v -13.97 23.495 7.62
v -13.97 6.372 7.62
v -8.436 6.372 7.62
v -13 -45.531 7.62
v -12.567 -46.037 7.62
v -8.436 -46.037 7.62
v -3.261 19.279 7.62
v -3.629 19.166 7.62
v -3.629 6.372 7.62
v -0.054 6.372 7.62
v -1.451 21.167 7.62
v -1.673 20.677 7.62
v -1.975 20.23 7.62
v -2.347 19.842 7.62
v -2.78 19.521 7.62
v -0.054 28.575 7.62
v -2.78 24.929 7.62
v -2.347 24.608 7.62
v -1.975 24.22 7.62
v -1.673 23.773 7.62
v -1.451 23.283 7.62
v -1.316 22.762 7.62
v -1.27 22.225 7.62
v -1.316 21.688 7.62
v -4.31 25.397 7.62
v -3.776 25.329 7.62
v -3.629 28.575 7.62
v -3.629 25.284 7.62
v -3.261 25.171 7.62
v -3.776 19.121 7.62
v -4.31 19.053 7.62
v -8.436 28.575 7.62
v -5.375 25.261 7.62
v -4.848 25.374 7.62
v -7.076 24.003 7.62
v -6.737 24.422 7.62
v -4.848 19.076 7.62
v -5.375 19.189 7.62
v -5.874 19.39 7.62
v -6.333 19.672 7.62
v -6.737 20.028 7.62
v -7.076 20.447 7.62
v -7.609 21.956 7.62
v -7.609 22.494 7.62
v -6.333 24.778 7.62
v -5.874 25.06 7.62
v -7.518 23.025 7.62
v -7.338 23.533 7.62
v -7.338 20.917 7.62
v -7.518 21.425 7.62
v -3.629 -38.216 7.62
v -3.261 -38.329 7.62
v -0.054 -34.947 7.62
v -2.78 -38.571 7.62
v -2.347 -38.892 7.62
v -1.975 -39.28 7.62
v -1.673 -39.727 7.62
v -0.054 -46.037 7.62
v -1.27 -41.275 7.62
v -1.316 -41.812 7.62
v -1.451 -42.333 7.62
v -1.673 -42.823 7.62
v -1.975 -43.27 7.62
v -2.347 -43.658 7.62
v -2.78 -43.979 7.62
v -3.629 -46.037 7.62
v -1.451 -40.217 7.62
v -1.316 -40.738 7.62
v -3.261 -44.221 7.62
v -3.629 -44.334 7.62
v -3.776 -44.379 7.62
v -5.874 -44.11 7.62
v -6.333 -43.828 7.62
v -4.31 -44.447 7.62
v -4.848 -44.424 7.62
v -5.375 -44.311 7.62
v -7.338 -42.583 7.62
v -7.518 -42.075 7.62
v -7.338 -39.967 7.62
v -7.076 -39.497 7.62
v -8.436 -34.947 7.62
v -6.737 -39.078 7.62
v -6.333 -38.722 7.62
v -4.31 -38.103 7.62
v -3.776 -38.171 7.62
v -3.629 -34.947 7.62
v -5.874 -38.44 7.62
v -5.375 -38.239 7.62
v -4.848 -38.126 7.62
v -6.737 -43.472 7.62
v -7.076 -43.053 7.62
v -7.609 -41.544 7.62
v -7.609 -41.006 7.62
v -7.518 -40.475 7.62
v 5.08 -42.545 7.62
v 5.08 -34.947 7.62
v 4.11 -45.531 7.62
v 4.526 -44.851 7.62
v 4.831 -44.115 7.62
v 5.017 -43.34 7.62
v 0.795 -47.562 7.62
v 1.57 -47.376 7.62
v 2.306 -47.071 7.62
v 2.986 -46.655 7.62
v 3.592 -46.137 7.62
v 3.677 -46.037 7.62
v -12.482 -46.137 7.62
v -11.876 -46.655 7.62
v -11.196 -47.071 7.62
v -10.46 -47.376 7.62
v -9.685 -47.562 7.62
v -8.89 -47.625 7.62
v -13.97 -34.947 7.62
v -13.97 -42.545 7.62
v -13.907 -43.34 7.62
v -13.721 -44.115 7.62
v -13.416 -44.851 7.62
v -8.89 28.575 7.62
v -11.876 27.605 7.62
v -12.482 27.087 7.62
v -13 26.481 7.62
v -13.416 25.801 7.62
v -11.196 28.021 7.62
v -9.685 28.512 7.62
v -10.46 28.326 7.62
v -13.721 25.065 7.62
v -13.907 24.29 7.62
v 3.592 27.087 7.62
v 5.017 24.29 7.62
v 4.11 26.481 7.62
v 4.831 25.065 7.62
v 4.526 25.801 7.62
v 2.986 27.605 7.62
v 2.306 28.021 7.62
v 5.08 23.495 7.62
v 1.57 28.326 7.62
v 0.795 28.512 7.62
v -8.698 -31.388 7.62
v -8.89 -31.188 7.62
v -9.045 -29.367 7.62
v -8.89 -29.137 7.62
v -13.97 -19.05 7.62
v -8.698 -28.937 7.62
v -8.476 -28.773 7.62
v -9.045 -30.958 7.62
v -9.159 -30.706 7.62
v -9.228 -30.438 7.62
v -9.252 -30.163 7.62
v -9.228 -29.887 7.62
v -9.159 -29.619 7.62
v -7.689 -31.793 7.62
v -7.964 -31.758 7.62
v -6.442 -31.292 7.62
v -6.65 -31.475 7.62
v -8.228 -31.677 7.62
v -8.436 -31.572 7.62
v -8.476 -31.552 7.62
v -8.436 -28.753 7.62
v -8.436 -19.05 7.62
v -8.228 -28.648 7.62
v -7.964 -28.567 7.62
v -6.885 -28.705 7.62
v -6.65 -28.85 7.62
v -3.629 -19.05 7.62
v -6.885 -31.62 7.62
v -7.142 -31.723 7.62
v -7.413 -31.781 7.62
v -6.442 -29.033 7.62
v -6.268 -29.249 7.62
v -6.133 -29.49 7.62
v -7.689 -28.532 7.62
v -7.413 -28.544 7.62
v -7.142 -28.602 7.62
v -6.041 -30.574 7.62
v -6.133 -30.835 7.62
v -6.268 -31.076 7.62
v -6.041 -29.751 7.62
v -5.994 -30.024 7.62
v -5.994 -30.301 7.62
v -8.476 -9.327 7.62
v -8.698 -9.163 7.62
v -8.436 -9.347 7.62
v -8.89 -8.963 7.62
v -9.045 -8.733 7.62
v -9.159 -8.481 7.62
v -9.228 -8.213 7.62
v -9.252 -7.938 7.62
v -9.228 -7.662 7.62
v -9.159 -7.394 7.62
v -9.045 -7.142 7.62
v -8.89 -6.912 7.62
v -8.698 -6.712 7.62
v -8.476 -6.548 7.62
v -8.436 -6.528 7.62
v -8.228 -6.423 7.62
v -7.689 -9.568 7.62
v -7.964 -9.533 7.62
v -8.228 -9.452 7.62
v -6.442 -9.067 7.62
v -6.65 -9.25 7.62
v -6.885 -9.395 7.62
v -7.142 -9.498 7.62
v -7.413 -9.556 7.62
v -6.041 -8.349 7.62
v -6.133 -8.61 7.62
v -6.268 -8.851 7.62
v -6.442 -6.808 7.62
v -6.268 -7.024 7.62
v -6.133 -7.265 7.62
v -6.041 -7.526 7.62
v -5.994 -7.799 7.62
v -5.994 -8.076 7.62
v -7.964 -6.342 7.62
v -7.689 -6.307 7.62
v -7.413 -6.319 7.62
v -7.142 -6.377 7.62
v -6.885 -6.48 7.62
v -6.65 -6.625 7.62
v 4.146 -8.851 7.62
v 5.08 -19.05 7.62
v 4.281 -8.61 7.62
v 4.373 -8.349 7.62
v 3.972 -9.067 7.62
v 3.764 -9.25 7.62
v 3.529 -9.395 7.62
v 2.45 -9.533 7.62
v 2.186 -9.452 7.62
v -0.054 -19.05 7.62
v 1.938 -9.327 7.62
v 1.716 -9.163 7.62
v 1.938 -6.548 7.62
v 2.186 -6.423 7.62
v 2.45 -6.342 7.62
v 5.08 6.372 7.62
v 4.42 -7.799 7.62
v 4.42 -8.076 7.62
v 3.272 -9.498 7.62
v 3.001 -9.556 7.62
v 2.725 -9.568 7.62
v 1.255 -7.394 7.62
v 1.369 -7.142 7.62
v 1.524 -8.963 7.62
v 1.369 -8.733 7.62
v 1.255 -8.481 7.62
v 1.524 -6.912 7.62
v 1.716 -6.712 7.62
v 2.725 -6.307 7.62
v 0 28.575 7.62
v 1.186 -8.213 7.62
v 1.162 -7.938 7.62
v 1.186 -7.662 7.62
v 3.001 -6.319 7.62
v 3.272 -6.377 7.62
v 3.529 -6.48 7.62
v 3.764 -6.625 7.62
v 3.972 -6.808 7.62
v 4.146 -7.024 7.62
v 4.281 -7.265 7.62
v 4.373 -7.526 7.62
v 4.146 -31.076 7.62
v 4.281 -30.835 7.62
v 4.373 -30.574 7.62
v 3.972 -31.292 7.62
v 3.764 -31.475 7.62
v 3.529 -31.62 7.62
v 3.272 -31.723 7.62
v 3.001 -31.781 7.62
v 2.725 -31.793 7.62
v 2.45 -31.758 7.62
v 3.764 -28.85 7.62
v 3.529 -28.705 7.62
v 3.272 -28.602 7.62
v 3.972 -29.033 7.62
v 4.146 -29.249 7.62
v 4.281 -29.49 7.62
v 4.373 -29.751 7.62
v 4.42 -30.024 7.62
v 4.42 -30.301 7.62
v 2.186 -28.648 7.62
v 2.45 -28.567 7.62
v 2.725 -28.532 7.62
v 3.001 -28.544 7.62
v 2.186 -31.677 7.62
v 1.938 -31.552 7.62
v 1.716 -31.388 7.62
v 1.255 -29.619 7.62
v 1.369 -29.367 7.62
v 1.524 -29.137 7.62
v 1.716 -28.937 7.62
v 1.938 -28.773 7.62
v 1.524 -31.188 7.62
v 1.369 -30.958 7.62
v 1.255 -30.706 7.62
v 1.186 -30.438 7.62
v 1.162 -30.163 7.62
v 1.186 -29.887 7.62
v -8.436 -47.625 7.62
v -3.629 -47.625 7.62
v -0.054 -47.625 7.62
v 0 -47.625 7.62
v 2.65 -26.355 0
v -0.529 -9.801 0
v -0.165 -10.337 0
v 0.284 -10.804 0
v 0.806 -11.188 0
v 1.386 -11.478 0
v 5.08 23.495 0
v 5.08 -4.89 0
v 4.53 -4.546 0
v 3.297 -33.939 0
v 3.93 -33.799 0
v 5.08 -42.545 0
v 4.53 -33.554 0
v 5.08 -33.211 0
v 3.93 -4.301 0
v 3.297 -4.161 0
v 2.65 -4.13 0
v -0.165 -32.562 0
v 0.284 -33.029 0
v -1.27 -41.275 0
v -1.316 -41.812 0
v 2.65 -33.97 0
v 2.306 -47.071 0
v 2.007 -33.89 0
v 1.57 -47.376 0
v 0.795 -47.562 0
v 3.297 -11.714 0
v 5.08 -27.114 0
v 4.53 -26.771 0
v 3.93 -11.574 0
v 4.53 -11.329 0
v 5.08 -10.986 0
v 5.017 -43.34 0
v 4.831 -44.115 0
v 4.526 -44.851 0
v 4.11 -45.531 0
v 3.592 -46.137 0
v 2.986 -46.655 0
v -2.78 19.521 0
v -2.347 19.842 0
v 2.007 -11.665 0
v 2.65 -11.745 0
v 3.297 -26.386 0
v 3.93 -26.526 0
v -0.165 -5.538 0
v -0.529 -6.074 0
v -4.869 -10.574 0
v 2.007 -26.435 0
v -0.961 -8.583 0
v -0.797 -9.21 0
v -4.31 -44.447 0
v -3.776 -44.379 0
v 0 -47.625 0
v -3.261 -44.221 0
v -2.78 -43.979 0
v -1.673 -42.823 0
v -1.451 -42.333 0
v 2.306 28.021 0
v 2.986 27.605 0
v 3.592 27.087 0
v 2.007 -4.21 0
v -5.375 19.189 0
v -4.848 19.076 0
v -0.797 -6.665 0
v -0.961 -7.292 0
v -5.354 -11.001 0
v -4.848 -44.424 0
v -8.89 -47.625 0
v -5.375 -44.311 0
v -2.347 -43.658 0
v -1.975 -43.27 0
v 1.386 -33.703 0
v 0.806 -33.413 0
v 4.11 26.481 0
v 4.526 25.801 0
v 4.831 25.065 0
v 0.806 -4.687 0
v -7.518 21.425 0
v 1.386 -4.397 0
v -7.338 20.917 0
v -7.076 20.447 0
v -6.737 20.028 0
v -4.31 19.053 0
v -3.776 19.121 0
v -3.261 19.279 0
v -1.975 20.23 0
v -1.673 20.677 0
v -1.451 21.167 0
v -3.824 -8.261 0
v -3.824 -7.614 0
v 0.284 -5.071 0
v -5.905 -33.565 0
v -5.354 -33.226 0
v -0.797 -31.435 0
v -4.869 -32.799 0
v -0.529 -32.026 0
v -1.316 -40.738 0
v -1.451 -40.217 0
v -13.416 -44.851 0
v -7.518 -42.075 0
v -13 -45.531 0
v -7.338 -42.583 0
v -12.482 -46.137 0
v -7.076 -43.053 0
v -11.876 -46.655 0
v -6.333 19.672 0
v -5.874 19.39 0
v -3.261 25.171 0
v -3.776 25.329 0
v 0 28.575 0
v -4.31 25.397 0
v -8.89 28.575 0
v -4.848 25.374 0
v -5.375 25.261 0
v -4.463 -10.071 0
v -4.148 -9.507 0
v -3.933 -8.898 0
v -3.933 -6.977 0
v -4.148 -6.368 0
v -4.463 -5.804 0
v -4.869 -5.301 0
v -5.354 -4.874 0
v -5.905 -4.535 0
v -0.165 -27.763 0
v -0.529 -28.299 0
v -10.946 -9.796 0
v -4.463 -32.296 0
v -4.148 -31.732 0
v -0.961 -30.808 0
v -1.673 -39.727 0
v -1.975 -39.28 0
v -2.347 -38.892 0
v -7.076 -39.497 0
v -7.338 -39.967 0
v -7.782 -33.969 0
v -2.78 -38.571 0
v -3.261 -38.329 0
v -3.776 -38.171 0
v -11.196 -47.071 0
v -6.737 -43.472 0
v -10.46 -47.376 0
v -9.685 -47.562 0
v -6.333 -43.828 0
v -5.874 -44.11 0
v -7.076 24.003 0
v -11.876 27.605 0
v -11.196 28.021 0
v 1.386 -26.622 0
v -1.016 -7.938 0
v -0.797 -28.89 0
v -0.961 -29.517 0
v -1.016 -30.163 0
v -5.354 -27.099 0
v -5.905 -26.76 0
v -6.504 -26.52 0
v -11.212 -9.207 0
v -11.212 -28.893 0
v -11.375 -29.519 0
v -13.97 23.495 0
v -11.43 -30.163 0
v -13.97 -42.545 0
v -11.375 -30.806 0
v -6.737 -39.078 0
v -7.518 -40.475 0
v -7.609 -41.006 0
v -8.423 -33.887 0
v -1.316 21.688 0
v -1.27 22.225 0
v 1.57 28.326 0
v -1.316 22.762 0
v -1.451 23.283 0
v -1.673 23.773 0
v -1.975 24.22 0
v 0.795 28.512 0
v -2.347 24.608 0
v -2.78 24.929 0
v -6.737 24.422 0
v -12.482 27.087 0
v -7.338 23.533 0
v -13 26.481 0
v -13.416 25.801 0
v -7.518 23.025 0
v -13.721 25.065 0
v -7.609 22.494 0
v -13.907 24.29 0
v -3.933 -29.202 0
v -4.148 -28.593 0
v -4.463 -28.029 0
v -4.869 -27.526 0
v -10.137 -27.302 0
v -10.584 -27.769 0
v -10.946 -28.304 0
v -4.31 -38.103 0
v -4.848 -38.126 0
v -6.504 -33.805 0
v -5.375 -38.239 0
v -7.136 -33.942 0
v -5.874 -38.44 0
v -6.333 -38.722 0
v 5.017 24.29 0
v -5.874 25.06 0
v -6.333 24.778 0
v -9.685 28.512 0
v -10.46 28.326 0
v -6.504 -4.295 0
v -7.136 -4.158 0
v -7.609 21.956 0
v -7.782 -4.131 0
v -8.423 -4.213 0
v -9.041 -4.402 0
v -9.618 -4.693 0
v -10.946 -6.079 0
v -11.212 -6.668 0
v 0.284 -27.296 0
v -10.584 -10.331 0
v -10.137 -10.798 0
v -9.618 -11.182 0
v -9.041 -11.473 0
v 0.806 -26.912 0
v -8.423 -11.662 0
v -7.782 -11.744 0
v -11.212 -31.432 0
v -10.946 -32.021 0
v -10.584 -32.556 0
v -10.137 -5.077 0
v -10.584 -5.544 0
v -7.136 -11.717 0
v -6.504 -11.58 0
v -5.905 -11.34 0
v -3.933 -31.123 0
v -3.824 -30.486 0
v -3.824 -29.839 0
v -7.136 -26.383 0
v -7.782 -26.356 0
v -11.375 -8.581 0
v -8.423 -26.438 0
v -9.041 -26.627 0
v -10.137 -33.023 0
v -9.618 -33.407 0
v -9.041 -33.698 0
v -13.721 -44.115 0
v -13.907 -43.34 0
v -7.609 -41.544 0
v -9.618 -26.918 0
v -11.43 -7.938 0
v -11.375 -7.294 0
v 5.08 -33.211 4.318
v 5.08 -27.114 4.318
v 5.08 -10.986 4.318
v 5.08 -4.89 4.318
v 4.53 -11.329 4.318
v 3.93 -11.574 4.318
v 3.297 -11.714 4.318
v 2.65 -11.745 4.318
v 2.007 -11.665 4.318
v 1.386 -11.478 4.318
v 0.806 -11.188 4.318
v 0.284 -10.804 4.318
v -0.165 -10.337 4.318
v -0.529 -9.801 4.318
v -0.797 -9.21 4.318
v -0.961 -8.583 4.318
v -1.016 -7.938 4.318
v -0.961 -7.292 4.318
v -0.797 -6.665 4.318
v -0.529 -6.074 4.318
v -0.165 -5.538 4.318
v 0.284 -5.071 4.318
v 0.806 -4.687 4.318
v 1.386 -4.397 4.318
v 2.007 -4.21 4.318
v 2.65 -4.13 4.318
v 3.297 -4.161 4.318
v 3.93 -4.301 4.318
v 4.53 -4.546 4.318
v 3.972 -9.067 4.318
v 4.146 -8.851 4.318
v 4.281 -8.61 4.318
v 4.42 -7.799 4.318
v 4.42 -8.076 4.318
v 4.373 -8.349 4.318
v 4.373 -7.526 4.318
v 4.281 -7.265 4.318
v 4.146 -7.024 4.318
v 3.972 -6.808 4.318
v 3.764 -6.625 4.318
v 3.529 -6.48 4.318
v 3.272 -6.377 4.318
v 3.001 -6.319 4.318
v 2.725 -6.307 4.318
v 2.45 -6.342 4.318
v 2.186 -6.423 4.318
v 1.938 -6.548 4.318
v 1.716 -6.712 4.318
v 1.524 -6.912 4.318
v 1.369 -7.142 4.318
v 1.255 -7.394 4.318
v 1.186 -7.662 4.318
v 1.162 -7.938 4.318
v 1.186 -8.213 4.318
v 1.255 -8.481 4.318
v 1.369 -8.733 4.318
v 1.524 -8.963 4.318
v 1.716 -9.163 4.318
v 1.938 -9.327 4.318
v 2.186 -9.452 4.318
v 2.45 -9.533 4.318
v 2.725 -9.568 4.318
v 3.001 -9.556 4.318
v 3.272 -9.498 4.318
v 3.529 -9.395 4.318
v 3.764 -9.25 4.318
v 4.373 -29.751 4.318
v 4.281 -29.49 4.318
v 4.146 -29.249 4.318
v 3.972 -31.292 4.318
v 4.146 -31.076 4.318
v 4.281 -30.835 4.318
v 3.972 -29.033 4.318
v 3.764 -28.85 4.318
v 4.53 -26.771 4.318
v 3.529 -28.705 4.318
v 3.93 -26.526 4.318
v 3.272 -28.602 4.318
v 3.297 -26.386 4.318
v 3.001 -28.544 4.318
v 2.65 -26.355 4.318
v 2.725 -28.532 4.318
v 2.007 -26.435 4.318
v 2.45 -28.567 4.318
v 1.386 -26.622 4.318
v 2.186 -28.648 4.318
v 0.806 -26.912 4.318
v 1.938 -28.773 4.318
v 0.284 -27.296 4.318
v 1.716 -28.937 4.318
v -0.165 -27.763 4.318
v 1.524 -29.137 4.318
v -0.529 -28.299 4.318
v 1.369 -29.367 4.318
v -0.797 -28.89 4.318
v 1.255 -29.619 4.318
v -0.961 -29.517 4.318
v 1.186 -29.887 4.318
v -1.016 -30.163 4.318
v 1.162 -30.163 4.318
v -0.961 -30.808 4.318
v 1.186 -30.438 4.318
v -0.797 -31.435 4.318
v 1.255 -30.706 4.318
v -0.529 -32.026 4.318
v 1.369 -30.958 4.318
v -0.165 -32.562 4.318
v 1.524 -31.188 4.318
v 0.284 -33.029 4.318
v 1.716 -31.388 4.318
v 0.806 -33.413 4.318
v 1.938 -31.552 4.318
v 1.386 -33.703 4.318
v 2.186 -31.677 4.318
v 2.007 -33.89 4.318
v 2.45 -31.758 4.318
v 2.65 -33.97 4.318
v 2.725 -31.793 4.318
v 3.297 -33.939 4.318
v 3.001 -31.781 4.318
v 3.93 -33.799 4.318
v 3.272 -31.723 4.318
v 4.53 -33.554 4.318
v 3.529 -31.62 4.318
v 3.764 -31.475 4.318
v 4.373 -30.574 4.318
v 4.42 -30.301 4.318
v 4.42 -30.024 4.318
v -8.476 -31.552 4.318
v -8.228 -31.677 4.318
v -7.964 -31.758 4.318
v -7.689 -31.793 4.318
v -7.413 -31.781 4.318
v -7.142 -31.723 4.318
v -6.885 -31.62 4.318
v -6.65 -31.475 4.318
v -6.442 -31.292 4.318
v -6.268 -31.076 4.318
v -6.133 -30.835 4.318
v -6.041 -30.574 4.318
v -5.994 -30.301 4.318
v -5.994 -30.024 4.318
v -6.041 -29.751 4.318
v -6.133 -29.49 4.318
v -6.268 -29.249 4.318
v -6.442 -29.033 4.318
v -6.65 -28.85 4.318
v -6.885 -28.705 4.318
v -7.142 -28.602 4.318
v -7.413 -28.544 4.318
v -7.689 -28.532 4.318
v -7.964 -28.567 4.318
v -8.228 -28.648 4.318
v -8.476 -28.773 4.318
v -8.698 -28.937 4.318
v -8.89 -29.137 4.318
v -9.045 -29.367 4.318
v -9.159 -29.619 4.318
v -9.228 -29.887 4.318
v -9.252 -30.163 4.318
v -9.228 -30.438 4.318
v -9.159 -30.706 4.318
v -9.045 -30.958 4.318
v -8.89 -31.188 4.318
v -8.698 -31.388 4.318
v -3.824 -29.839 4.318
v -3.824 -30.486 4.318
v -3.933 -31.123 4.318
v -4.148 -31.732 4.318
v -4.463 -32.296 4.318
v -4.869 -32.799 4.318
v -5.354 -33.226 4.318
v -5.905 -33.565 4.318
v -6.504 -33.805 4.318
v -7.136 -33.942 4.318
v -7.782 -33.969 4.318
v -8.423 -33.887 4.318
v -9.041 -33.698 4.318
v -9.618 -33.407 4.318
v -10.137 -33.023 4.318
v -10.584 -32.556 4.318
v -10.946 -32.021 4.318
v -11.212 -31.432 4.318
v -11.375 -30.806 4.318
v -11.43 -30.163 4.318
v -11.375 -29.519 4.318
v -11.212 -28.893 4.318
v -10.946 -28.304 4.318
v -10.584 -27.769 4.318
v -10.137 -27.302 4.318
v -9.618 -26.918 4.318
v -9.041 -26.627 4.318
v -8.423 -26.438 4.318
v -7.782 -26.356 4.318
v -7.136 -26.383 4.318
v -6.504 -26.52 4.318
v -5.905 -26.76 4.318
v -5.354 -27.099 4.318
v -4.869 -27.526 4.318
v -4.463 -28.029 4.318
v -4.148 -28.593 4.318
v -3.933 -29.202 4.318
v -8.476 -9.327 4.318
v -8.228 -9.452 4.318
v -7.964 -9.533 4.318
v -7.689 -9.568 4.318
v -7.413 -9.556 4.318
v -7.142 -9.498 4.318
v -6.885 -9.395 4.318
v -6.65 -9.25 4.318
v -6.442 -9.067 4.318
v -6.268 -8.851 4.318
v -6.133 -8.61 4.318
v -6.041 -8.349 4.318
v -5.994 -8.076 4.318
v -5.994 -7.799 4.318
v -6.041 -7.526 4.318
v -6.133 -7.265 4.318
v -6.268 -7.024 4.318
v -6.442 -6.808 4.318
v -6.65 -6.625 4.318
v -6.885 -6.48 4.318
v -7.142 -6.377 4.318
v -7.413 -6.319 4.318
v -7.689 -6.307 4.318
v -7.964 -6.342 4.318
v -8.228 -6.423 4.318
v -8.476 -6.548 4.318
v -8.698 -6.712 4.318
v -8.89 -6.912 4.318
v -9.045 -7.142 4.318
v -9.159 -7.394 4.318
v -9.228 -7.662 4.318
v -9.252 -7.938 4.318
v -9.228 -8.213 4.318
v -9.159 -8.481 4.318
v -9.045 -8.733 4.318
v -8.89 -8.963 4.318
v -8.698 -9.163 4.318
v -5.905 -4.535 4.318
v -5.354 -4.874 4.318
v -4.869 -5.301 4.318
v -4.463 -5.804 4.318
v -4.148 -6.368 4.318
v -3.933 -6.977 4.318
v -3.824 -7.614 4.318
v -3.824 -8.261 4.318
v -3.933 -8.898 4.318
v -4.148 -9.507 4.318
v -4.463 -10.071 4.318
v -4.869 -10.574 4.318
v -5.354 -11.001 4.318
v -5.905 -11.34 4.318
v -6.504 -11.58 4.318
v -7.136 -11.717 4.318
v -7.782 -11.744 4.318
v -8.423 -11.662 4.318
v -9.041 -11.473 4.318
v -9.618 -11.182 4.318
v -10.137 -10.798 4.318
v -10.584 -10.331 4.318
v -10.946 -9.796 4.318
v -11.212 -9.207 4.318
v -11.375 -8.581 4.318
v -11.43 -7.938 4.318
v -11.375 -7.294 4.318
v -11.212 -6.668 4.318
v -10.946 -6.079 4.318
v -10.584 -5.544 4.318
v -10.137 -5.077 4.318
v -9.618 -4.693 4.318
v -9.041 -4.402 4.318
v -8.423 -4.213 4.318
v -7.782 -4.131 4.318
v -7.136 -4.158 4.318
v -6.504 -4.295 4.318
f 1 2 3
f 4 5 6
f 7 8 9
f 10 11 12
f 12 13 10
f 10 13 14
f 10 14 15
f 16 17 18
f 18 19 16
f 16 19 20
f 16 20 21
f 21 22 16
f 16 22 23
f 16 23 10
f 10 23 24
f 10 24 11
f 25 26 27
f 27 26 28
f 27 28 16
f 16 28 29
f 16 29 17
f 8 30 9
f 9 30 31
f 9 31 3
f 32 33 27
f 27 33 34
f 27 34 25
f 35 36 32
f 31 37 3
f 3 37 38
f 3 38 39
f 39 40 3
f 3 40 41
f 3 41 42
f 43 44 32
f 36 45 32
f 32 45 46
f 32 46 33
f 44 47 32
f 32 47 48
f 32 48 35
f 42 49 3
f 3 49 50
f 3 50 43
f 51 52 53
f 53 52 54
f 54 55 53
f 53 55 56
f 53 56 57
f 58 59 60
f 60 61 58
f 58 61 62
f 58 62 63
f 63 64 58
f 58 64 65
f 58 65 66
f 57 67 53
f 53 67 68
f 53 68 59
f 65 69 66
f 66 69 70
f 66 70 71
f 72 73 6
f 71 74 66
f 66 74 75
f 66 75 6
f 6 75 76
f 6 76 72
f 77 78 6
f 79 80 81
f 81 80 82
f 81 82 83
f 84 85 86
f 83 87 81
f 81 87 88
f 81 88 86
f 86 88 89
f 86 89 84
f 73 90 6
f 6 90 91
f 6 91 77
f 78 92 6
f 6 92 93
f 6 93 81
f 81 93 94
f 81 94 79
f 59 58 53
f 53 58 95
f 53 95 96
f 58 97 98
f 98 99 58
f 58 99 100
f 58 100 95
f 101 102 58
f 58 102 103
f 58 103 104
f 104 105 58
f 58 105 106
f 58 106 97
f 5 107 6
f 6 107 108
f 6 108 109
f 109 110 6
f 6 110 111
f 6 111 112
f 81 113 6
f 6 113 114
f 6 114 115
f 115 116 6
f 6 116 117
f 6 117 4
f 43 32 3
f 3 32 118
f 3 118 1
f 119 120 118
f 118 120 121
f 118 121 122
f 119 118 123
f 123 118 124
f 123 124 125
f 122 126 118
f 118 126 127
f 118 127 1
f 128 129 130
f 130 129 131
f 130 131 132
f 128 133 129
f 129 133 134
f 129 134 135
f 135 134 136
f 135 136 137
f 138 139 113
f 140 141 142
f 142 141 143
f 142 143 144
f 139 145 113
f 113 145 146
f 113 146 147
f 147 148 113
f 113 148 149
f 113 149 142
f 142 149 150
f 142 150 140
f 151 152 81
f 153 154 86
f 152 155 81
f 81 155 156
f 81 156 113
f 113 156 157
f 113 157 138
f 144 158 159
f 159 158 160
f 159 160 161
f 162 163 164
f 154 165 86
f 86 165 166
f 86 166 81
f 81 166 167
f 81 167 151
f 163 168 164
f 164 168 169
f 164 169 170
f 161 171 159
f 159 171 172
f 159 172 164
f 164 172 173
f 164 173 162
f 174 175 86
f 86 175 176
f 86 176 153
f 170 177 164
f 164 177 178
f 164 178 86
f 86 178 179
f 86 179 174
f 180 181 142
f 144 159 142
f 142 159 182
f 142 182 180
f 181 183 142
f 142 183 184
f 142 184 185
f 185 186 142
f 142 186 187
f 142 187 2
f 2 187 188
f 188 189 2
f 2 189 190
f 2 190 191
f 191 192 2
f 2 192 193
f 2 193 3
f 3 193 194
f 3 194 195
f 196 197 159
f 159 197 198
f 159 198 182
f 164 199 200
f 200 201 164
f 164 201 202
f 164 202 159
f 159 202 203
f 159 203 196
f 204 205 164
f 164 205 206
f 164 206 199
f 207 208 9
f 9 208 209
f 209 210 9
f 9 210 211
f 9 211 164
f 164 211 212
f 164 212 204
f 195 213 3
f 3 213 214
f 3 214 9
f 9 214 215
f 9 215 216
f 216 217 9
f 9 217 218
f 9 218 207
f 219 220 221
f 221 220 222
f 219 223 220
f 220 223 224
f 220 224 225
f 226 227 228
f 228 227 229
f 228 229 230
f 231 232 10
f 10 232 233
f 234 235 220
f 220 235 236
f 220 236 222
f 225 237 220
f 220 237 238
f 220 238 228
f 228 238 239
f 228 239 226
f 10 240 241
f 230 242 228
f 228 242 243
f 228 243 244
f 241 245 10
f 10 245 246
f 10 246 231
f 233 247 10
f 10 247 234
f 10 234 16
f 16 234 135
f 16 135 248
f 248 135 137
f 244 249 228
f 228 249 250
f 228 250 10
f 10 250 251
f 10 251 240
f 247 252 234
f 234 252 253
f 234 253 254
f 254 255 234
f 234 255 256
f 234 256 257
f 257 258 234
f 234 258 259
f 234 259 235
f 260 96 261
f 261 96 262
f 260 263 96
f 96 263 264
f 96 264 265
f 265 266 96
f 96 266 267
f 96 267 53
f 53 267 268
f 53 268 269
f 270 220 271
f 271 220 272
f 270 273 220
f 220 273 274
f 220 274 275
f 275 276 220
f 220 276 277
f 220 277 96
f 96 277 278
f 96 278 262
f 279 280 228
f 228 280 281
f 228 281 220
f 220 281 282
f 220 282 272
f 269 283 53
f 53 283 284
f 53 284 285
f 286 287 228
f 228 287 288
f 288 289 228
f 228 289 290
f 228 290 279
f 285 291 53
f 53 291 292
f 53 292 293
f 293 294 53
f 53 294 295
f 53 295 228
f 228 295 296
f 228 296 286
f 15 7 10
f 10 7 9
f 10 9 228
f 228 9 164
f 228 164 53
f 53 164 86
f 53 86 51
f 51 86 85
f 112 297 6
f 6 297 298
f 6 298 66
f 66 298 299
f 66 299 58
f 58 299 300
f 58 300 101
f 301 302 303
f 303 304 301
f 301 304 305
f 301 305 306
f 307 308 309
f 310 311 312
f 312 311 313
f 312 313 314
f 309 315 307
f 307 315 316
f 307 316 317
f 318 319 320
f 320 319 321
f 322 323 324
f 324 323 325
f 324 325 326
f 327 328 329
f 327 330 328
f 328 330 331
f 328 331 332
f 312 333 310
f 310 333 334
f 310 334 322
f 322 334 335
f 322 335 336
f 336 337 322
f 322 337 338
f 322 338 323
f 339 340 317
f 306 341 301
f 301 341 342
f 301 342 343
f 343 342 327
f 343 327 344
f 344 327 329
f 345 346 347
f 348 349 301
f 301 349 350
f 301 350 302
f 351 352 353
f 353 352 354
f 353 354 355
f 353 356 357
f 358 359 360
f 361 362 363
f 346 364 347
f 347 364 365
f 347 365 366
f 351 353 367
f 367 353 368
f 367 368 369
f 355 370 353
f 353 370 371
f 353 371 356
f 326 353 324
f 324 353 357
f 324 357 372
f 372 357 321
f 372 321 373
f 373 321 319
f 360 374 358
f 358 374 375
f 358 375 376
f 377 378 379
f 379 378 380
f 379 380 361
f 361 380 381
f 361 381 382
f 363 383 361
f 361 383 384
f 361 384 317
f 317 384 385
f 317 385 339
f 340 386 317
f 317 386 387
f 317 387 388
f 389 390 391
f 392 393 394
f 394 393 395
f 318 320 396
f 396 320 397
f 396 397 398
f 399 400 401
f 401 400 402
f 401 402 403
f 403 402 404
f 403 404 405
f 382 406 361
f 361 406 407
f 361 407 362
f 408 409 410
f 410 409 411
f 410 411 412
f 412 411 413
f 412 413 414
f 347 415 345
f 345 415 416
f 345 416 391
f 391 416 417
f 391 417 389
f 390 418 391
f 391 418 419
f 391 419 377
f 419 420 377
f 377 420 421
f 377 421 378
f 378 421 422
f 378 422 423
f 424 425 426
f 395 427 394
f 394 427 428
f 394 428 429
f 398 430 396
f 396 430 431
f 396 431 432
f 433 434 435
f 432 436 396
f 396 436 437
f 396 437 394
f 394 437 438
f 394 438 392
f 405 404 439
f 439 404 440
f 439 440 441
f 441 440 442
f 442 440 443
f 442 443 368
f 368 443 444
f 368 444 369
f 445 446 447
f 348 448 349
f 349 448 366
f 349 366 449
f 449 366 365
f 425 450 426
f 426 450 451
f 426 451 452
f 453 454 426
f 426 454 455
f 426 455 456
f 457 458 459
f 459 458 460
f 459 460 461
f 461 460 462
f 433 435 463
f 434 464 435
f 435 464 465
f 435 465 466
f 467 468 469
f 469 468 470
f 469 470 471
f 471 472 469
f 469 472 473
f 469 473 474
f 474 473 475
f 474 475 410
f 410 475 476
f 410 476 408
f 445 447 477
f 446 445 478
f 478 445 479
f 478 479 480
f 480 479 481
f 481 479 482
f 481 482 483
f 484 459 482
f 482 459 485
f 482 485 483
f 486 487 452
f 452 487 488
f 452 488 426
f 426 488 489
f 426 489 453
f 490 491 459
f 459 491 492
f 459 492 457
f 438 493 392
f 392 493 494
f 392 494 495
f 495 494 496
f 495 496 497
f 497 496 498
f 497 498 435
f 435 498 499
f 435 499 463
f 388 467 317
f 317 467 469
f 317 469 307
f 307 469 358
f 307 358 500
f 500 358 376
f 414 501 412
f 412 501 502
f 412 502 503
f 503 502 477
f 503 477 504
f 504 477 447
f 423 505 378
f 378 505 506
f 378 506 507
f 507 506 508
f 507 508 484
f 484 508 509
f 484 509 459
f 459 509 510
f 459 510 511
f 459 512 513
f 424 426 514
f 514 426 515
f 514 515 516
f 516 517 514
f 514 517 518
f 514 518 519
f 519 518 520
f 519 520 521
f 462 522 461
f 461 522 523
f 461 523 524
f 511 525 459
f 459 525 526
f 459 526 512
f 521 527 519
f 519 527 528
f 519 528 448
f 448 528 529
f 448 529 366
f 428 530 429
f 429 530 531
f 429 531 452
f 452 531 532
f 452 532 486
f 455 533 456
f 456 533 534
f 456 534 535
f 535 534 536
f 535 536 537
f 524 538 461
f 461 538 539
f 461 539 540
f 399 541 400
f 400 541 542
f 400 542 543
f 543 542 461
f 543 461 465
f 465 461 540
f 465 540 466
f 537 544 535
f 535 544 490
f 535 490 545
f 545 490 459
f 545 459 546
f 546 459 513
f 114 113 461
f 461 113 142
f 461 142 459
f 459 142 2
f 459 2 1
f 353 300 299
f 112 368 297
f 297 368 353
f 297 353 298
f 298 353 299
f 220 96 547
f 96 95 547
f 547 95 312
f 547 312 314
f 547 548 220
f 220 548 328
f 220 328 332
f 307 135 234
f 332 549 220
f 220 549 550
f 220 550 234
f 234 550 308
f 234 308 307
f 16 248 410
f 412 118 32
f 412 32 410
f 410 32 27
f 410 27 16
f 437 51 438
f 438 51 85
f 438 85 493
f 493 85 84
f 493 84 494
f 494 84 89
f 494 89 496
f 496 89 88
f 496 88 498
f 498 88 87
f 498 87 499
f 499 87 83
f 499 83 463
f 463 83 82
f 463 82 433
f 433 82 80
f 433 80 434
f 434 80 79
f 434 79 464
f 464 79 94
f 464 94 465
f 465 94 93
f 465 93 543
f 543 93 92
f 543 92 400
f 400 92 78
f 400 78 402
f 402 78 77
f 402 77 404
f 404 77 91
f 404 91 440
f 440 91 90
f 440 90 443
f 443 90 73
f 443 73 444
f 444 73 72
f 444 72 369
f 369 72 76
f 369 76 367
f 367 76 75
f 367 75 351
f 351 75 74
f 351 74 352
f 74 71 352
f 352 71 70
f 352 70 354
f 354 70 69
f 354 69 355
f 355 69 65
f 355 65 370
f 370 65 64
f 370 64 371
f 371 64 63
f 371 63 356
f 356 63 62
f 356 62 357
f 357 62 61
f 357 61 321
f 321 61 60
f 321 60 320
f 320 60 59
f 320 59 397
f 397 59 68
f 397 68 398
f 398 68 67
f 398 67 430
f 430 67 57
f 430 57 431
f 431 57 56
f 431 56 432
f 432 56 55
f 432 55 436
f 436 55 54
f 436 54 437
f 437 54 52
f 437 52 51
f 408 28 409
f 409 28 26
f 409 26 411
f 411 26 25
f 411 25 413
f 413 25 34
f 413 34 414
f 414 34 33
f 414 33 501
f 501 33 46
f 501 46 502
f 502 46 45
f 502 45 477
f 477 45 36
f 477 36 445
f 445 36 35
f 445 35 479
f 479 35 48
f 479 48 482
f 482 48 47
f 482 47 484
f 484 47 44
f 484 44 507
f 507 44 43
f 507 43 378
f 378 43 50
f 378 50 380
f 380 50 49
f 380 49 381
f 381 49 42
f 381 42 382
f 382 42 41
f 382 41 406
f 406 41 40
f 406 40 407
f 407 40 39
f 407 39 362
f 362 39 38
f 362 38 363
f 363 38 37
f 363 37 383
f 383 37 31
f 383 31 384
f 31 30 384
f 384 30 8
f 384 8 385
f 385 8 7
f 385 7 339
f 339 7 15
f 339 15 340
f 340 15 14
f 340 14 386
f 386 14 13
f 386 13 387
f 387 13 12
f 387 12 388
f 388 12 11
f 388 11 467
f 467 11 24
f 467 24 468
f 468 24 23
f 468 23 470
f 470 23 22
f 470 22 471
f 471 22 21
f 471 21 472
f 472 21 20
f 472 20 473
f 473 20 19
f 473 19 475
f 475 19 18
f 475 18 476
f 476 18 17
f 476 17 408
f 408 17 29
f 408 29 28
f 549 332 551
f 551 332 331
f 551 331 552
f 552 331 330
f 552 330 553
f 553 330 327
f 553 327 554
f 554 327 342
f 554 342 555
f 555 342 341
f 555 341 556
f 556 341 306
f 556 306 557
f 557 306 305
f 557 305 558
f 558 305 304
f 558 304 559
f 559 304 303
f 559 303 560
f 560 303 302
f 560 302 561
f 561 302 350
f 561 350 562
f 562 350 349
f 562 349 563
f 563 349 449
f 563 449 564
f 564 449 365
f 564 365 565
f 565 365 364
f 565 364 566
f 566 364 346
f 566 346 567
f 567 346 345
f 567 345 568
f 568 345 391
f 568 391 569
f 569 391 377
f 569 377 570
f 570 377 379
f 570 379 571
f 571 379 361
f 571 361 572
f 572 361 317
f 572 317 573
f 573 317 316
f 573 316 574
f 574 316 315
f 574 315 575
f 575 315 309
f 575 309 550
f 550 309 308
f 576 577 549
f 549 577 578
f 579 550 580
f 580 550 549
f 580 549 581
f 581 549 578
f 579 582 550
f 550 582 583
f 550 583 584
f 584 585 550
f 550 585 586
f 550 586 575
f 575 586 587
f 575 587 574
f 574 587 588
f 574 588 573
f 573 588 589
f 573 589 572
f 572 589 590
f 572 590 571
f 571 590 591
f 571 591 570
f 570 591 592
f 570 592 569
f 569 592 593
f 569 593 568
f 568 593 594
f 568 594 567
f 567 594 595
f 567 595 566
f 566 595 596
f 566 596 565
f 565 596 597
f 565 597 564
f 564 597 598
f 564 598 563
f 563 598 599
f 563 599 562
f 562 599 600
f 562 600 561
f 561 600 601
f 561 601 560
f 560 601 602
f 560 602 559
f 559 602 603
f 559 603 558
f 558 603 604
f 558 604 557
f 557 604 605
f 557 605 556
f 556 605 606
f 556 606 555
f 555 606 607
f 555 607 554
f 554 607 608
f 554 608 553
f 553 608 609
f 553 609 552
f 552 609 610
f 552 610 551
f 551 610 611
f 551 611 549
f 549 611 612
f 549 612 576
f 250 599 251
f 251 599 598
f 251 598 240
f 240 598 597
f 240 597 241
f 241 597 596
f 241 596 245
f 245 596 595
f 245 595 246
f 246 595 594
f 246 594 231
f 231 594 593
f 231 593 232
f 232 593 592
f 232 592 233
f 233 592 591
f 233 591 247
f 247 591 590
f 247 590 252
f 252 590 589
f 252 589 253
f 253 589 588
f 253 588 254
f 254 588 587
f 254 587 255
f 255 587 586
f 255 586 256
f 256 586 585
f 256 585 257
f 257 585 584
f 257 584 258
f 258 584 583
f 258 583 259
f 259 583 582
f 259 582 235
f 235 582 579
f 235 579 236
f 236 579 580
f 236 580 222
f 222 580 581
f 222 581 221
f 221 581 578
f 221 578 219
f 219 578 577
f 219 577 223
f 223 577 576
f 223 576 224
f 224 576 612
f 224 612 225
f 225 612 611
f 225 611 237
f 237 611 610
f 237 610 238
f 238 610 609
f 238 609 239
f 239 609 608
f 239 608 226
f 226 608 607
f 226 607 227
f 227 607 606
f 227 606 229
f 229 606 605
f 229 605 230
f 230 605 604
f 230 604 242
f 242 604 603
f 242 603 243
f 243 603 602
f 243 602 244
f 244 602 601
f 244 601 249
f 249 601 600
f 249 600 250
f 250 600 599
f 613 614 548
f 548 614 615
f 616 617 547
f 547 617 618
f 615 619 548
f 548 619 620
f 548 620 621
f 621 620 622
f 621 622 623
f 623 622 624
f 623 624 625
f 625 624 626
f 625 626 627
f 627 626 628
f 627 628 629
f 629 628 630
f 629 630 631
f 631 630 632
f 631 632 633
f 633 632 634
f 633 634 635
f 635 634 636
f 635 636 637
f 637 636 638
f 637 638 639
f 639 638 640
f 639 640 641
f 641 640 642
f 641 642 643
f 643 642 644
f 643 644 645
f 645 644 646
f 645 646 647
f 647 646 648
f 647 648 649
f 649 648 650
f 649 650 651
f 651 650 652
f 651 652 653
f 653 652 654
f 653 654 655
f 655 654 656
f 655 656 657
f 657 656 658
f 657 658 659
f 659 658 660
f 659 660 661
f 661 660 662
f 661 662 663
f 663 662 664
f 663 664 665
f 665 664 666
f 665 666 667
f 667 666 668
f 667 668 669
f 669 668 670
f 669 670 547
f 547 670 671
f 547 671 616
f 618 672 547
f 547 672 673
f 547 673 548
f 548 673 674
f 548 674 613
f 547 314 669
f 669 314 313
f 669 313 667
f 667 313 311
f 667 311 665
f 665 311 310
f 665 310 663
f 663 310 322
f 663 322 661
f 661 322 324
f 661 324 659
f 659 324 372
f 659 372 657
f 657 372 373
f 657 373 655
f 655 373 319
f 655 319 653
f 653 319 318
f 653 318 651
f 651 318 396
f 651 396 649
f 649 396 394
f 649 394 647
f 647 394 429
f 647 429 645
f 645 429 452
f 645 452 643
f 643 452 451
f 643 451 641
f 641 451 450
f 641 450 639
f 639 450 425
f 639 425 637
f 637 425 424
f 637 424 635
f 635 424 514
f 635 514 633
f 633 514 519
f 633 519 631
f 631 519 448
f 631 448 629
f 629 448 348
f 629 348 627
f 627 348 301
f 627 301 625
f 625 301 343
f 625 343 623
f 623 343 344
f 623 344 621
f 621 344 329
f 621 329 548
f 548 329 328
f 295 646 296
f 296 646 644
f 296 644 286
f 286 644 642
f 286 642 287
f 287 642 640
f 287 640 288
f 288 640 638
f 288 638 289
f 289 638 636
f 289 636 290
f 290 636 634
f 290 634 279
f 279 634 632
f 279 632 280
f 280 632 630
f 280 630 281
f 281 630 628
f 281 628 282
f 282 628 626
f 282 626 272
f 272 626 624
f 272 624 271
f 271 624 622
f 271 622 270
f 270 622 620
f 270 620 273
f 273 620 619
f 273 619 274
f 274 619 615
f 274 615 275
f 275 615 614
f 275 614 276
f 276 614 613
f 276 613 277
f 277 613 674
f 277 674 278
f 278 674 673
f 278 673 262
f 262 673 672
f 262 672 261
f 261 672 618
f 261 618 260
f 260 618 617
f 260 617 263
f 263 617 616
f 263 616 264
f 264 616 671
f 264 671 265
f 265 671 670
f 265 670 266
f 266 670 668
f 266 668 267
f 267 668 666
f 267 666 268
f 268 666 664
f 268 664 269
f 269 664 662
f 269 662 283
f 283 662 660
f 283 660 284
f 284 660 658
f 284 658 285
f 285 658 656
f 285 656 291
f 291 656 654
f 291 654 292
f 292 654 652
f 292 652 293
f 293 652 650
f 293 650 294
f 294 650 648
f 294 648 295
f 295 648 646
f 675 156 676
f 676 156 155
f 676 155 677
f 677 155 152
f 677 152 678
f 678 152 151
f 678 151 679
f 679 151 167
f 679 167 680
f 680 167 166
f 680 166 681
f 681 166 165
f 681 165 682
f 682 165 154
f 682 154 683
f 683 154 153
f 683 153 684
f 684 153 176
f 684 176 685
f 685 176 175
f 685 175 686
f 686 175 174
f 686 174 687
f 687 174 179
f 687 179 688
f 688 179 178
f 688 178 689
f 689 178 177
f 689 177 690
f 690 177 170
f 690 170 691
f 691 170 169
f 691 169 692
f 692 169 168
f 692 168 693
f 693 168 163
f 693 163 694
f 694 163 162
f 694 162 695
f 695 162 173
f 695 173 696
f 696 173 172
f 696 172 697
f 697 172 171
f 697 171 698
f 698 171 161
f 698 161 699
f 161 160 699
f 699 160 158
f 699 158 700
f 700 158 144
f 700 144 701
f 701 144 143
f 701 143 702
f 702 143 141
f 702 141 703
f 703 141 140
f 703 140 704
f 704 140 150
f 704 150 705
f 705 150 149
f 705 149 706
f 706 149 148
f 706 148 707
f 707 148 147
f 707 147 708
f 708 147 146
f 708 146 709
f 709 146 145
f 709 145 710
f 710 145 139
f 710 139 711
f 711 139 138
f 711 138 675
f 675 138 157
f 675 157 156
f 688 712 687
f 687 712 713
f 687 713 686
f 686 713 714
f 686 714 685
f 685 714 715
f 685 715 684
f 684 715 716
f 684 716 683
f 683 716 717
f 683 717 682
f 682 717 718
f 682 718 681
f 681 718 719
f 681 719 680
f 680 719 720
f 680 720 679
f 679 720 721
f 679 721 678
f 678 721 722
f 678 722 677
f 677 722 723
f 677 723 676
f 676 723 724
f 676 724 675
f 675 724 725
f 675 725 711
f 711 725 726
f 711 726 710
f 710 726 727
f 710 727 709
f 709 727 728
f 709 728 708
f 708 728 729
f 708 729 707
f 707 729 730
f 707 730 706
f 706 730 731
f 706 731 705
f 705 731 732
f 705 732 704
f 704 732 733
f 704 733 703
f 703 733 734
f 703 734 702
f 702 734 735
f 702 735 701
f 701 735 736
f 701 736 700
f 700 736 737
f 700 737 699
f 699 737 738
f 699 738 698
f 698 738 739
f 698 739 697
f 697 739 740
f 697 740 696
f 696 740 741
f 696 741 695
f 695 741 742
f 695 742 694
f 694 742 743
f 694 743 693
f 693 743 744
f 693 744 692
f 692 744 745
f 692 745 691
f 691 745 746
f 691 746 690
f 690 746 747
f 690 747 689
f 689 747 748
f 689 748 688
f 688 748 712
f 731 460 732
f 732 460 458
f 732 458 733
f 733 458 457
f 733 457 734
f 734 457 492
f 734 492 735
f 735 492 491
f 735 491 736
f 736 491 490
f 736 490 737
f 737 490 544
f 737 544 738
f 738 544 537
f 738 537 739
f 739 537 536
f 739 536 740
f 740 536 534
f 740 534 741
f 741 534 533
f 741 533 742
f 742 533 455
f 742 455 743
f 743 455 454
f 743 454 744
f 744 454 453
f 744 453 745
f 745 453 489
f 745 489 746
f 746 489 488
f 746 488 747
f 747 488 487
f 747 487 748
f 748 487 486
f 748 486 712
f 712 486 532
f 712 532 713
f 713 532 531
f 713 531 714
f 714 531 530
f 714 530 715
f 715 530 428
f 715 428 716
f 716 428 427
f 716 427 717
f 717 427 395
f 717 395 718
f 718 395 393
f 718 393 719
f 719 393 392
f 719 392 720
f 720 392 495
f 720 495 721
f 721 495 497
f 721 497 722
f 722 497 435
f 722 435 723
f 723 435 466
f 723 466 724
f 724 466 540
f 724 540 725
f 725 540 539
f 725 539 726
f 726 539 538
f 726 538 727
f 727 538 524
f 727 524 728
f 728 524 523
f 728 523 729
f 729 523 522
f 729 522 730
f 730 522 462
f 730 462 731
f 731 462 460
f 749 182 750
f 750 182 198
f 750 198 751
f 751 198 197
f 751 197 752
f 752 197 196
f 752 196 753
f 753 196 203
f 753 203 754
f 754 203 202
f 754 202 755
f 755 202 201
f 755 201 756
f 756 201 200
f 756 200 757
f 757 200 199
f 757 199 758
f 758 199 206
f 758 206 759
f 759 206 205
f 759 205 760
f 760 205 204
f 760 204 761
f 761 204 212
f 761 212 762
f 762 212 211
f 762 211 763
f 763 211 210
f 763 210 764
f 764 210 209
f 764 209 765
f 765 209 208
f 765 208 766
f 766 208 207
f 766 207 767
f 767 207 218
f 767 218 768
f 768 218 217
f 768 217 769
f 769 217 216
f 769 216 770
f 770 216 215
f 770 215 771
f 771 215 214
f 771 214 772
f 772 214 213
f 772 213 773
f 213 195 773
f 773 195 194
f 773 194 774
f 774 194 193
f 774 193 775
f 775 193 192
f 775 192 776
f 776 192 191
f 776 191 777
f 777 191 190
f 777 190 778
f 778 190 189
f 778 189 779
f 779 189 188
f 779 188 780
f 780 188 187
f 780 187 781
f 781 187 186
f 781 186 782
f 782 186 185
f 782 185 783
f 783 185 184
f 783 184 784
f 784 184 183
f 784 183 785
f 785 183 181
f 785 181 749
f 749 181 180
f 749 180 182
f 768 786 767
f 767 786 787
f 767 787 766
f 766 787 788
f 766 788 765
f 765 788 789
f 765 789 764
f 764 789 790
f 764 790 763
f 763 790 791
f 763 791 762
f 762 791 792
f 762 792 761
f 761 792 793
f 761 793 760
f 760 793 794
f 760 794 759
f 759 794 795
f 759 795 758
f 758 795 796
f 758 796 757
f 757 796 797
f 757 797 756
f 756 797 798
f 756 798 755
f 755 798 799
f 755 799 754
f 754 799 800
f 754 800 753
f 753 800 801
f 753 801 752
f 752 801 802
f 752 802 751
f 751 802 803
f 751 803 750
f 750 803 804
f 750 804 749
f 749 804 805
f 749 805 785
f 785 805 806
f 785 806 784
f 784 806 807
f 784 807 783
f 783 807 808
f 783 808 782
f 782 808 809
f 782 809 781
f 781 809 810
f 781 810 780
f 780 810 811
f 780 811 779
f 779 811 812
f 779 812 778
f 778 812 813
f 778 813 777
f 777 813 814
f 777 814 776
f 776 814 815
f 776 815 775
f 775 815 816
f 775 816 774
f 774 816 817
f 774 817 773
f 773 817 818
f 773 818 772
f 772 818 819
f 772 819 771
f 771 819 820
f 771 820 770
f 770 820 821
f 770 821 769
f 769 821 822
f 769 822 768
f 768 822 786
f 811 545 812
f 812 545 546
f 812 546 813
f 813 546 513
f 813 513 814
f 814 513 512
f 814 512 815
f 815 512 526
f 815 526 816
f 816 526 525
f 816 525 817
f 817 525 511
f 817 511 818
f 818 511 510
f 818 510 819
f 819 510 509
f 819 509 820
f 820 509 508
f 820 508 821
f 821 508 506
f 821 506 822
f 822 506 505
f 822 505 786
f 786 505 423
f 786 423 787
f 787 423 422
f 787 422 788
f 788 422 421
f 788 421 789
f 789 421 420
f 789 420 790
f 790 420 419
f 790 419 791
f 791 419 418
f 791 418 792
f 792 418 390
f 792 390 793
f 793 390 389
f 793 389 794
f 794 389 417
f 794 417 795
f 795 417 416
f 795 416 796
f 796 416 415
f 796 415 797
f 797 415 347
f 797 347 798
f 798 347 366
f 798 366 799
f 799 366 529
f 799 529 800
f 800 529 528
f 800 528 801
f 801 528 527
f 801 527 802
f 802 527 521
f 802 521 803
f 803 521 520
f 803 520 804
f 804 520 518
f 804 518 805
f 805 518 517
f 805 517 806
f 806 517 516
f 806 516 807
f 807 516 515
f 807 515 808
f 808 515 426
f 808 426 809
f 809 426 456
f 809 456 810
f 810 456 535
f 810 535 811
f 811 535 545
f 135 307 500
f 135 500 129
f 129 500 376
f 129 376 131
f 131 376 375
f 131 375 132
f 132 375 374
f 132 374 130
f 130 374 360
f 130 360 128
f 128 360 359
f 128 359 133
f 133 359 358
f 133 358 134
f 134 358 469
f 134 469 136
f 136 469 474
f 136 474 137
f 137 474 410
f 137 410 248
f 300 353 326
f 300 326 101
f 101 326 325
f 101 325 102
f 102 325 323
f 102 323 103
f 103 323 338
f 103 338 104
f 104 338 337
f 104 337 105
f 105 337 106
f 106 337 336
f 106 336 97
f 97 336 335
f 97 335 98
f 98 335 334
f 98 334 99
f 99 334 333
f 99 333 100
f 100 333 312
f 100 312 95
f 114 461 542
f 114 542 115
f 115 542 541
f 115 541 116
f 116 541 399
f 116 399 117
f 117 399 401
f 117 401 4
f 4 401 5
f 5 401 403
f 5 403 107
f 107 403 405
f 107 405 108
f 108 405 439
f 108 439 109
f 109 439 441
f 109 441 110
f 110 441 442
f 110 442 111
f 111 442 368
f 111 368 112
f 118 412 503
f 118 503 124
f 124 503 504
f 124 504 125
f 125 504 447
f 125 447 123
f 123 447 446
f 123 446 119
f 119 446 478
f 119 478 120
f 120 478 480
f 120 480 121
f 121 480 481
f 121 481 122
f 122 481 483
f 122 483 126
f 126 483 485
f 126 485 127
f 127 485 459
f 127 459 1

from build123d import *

# Parameters (mm, degrees)
SKETCH1_W                                      = 19.05
SKETCH1_H                                      = 76.2
BOSS_EXTRUDE1_DEPTH                            = 7.62
F_1_4_0_25_DIAMETER_HOLE1_D                    = 6.35
F_1_4_0_25_DIAMETER_HOLE1_DEPTH                = 25.4
F_1_4_0_25_DIAMETER_HOLE1_TIP                  = 1.907732465
CBORE_FOR_4_SOCKET_HEAD_CAP_SCREW5_D           = 3.2639
CBORE_FOR_4_SOCKET_HEAD_CAP_SCREW5_CBORE_D     = 7.62
CBORE_FOR_4_SOCKET_HEAD_CAP_SCREW5_CBORE_DEPTH = 4.318
FILLET1_R                                      = 5.08


with BuildPart() as part:
    # Sketch1 → Boss-Extrude1 (new body)
    with BuildSketch(Plane.XY):
        with Locations((-4.445, -9.525)):
            Rectangle(SKETCH1_W, SKETCH1_H)
    extrude(amount=BOSS_EXTRUDE1_DEPTH)

    # 1/4 (0.25) Diameter Hole1
    with Locations(Plane.XY.offset(7.62)):
        with Locations((-4.445, 22.225), (-4.445, -41.275)):
            Hole(F_1_4_0_25_DIAMETER_HOLE1_D / 2, depth=F_1_4_0_25_DIAMETER_HOLE1_DEPTH)
            with Locations((0, 0, -(F_1_4_0_25_DIAMETER_HOLE1_DEPTH + F_1_4_0_25_DIAMETER_HOLE1_TIP / 2))):  # 118° drill point
                Cone(0, F_1_4_0_25_DIAMETER_HOLE1_D / 2, F_1_4_0_25_DIAMETER_HOLE1_TIP, mode=Mode.SUBTRACT)

    # CBORE for #4 Socket Head Cap Screw5 (through all)
    with Locations(Plane(origin=(-2.017261163, -3.813643011, 0), x_dir=(1, 0, 0), z_dir=(0, 0, -1))):
        with Locations((-5.602738837, 4.123856989), (-5.602738837, 26.348856989), (4.811261163, 26.348856989), (4.811261163, 4.123856989)):
            CounterBoreHole(CBORE_FOR_4_SOCKET_HEAD_CAP_SCREW5_D / 2, CBORE_FOR_4_SOCKET_HEAD_CAP_SCREW5_CBORE_D / 2, CBORE_FOR_4_SOCKET_HEAD_CAP_SCREW5_CBORE_DEPTH)

    # Fillet1
    fillet1_edges = [part.edges().sort_by_distance(p)[0] for p in [
        (-13.97, 28.575, 3.81),
        (5.08, 28.575, 3.81),
        (5.08, -47.625, 3.81),
        (-13.97, -47.625, 3.81),
    ]]
    fillet(fillet1_edges, radius=FILLET1_R)


solid = part.part
